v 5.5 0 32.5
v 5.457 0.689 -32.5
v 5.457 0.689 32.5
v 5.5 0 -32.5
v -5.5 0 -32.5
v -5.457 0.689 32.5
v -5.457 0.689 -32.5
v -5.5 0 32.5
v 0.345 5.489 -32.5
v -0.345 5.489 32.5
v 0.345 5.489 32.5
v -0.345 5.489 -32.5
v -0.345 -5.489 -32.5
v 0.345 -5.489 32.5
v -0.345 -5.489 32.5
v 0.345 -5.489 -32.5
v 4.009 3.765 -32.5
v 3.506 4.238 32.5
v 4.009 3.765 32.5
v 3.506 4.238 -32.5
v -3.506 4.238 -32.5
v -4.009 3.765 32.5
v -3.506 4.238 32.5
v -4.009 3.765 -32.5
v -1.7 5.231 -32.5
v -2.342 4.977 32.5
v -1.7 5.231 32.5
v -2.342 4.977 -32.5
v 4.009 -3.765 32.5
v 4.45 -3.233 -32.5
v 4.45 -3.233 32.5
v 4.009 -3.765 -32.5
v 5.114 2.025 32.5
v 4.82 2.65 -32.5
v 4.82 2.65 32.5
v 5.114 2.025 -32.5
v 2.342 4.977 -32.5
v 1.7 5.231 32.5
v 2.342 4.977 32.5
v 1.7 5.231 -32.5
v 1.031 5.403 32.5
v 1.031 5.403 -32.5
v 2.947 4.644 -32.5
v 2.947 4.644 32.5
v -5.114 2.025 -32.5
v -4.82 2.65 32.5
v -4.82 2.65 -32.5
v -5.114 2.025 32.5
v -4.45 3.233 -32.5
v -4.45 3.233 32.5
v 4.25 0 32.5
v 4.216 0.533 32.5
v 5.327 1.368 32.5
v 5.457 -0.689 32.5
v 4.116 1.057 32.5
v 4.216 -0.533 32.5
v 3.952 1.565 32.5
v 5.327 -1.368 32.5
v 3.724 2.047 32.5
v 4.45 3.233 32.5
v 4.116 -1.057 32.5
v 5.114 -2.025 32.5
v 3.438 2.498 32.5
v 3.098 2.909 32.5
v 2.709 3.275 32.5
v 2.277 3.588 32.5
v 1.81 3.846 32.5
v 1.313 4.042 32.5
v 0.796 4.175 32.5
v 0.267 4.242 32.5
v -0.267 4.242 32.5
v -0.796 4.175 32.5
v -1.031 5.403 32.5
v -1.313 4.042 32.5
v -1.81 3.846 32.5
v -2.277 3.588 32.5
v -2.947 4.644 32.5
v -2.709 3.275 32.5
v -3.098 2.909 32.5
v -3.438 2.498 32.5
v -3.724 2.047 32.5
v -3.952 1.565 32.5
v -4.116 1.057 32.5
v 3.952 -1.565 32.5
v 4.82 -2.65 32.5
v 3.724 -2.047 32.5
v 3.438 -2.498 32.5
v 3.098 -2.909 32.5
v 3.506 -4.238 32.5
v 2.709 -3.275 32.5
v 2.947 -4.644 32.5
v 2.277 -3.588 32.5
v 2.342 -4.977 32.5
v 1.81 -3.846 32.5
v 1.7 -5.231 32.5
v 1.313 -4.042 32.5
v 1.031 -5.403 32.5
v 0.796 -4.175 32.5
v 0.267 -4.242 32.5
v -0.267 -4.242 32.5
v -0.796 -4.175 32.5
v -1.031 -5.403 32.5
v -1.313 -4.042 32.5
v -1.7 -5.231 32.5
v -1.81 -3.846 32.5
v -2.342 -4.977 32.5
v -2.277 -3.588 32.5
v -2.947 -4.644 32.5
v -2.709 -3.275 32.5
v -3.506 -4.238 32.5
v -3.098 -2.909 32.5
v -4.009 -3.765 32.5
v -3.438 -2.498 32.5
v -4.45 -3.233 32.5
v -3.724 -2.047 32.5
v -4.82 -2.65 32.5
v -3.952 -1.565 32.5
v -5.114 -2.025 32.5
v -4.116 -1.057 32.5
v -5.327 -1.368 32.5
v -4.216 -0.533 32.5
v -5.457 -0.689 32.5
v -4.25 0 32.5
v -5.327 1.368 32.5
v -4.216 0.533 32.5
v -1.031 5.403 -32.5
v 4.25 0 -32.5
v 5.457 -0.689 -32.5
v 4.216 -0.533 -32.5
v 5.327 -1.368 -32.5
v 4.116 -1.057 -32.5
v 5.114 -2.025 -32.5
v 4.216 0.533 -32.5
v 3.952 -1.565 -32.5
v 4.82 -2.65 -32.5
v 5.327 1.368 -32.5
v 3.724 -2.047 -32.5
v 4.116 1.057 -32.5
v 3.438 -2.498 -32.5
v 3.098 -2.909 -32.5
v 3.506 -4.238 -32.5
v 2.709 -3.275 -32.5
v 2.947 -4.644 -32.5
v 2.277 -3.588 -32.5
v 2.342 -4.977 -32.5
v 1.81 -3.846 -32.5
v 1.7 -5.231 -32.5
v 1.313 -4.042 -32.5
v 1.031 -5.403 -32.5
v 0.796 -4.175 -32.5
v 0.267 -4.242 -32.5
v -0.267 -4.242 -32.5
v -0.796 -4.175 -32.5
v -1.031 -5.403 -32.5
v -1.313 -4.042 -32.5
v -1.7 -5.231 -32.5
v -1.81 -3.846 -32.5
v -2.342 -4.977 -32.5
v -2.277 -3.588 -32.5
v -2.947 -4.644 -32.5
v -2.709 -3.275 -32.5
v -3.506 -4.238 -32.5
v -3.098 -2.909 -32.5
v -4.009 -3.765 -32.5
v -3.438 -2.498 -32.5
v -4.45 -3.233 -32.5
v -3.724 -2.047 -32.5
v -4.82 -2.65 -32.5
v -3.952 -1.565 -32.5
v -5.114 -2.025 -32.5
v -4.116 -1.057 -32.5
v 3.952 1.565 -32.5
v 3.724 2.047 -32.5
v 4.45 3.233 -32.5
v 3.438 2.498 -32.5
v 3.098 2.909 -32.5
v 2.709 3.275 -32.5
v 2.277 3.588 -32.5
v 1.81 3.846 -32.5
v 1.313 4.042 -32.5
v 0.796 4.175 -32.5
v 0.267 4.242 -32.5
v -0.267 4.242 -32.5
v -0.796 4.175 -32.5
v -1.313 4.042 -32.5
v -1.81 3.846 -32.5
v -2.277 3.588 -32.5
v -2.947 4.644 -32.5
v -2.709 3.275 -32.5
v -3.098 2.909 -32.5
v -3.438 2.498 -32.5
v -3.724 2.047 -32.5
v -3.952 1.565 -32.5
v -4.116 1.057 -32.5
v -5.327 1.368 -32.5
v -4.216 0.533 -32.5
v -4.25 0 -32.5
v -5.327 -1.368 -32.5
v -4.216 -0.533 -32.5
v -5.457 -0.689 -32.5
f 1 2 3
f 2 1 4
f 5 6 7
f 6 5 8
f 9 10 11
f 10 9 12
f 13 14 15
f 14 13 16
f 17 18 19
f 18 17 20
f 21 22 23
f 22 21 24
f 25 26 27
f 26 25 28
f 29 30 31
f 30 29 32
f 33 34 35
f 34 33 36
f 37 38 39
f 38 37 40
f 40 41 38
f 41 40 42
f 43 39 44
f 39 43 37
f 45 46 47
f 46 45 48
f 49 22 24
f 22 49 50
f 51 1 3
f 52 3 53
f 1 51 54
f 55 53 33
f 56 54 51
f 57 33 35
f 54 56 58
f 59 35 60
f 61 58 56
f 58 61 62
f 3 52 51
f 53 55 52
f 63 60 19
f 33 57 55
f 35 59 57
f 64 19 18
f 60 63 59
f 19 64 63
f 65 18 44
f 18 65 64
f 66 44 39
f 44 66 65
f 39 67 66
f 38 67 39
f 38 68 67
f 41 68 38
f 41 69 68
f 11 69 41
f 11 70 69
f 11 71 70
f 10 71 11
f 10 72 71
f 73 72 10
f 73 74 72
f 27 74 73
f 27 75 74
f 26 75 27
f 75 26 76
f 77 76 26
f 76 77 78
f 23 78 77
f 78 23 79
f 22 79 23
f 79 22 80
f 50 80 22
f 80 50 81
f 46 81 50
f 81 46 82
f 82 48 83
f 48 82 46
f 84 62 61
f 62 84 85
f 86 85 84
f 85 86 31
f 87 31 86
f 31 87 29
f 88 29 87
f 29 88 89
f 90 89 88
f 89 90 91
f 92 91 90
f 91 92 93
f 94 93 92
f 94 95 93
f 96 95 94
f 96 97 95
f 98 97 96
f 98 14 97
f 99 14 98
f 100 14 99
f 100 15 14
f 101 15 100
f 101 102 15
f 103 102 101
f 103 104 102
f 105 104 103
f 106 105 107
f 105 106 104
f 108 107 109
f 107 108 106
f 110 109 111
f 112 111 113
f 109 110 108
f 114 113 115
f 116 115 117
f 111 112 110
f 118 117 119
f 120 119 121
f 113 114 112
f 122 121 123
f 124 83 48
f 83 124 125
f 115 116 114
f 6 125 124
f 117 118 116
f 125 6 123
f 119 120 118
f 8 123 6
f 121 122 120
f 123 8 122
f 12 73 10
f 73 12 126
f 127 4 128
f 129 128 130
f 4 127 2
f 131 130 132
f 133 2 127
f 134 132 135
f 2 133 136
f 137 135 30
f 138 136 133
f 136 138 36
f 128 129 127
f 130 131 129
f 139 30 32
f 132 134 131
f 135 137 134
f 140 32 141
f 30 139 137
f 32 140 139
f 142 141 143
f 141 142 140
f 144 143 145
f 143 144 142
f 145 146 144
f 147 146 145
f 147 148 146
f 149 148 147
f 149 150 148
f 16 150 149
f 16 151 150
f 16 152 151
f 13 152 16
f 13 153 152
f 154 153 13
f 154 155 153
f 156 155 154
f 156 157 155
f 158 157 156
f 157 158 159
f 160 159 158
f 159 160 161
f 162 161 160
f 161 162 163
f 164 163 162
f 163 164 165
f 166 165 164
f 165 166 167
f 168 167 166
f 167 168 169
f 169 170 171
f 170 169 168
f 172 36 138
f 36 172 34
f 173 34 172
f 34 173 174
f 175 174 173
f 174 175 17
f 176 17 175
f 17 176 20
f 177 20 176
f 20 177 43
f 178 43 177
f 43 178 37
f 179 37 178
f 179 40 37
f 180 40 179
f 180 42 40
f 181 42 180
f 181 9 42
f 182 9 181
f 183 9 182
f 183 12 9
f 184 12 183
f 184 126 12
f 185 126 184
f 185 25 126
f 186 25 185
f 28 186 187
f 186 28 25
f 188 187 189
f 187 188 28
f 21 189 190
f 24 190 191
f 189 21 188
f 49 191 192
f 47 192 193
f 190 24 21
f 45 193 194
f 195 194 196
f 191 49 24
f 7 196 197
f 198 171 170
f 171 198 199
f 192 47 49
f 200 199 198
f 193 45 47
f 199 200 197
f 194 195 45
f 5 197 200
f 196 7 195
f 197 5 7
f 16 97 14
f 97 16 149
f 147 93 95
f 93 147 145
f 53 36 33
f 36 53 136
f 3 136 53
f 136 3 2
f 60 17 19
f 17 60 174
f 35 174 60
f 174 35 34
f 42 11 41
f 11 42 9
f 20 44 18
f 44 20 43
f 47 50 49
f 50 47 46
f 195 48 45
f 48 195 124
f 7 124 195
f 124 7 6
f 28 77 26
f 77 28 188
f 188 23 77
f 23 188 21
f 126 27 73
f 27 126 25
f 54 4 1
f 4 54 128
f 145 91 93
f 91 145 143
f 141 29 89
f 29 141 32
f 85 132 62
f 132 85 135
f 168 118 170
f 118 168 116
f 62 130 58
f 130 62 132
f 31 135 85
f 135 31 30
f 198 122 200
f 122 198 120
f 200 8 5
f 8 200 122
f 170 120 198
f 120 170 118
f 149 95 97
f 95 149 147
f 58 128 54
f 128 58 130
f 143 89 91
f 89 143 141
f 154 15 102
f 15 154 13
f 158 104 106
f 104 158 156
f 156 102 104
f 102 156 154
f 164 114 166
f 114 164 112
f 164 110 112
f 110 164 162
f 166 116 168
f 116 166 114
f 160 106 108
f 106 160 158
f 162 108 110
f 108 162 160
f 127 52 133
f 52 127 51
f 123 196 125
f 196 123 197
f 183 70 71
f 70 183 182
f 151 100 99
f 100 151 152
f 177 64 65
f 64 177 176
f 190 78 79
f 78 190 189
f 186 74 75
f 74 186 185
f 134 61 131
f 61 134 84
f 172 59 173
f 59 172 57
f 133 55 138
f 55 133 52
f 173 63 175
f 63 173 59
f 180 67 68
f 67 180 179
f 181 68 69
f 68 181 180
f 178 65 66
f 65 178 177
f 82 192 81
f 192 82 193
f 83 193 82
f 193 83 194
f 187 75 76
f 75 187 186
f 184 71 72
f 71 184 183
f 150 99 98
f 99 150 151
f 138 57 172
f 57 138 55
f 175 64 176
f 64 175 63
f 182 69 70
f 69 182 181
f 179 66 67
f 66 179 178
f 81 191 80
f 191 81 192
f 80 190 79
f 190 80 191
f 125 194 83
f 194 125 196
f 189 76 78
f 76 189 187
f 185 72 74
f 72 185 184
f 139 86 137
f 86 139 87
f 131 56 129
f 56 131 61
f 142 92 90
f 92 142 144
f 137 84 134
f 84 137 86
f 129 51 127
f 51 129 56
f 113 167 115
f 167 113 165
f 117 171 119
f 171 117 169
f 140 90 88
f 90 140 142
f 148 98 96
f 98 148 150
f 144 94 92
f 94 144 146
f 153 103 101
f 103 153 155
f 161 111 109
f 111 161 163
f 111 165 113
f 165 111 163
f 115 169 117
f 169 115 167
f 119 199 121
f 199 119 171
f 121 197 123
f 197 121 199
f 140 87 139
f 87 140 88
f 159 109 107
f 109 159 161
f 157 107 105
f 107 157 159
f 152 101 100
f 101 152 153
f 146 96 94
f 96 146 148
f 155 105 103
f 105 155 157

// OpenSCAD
$fn = 50;


difference() {
	union() {
		translate(v = [0, 0, -32.5000000000]) {
			cylinder(h = 65, r = 5.5000000000);
		}
	}
	union() {
		translate(v = [0, 0, -100.0000000000]) {
			cylinder(h = 200, r = 4.2500000000);
		}
	}
}
